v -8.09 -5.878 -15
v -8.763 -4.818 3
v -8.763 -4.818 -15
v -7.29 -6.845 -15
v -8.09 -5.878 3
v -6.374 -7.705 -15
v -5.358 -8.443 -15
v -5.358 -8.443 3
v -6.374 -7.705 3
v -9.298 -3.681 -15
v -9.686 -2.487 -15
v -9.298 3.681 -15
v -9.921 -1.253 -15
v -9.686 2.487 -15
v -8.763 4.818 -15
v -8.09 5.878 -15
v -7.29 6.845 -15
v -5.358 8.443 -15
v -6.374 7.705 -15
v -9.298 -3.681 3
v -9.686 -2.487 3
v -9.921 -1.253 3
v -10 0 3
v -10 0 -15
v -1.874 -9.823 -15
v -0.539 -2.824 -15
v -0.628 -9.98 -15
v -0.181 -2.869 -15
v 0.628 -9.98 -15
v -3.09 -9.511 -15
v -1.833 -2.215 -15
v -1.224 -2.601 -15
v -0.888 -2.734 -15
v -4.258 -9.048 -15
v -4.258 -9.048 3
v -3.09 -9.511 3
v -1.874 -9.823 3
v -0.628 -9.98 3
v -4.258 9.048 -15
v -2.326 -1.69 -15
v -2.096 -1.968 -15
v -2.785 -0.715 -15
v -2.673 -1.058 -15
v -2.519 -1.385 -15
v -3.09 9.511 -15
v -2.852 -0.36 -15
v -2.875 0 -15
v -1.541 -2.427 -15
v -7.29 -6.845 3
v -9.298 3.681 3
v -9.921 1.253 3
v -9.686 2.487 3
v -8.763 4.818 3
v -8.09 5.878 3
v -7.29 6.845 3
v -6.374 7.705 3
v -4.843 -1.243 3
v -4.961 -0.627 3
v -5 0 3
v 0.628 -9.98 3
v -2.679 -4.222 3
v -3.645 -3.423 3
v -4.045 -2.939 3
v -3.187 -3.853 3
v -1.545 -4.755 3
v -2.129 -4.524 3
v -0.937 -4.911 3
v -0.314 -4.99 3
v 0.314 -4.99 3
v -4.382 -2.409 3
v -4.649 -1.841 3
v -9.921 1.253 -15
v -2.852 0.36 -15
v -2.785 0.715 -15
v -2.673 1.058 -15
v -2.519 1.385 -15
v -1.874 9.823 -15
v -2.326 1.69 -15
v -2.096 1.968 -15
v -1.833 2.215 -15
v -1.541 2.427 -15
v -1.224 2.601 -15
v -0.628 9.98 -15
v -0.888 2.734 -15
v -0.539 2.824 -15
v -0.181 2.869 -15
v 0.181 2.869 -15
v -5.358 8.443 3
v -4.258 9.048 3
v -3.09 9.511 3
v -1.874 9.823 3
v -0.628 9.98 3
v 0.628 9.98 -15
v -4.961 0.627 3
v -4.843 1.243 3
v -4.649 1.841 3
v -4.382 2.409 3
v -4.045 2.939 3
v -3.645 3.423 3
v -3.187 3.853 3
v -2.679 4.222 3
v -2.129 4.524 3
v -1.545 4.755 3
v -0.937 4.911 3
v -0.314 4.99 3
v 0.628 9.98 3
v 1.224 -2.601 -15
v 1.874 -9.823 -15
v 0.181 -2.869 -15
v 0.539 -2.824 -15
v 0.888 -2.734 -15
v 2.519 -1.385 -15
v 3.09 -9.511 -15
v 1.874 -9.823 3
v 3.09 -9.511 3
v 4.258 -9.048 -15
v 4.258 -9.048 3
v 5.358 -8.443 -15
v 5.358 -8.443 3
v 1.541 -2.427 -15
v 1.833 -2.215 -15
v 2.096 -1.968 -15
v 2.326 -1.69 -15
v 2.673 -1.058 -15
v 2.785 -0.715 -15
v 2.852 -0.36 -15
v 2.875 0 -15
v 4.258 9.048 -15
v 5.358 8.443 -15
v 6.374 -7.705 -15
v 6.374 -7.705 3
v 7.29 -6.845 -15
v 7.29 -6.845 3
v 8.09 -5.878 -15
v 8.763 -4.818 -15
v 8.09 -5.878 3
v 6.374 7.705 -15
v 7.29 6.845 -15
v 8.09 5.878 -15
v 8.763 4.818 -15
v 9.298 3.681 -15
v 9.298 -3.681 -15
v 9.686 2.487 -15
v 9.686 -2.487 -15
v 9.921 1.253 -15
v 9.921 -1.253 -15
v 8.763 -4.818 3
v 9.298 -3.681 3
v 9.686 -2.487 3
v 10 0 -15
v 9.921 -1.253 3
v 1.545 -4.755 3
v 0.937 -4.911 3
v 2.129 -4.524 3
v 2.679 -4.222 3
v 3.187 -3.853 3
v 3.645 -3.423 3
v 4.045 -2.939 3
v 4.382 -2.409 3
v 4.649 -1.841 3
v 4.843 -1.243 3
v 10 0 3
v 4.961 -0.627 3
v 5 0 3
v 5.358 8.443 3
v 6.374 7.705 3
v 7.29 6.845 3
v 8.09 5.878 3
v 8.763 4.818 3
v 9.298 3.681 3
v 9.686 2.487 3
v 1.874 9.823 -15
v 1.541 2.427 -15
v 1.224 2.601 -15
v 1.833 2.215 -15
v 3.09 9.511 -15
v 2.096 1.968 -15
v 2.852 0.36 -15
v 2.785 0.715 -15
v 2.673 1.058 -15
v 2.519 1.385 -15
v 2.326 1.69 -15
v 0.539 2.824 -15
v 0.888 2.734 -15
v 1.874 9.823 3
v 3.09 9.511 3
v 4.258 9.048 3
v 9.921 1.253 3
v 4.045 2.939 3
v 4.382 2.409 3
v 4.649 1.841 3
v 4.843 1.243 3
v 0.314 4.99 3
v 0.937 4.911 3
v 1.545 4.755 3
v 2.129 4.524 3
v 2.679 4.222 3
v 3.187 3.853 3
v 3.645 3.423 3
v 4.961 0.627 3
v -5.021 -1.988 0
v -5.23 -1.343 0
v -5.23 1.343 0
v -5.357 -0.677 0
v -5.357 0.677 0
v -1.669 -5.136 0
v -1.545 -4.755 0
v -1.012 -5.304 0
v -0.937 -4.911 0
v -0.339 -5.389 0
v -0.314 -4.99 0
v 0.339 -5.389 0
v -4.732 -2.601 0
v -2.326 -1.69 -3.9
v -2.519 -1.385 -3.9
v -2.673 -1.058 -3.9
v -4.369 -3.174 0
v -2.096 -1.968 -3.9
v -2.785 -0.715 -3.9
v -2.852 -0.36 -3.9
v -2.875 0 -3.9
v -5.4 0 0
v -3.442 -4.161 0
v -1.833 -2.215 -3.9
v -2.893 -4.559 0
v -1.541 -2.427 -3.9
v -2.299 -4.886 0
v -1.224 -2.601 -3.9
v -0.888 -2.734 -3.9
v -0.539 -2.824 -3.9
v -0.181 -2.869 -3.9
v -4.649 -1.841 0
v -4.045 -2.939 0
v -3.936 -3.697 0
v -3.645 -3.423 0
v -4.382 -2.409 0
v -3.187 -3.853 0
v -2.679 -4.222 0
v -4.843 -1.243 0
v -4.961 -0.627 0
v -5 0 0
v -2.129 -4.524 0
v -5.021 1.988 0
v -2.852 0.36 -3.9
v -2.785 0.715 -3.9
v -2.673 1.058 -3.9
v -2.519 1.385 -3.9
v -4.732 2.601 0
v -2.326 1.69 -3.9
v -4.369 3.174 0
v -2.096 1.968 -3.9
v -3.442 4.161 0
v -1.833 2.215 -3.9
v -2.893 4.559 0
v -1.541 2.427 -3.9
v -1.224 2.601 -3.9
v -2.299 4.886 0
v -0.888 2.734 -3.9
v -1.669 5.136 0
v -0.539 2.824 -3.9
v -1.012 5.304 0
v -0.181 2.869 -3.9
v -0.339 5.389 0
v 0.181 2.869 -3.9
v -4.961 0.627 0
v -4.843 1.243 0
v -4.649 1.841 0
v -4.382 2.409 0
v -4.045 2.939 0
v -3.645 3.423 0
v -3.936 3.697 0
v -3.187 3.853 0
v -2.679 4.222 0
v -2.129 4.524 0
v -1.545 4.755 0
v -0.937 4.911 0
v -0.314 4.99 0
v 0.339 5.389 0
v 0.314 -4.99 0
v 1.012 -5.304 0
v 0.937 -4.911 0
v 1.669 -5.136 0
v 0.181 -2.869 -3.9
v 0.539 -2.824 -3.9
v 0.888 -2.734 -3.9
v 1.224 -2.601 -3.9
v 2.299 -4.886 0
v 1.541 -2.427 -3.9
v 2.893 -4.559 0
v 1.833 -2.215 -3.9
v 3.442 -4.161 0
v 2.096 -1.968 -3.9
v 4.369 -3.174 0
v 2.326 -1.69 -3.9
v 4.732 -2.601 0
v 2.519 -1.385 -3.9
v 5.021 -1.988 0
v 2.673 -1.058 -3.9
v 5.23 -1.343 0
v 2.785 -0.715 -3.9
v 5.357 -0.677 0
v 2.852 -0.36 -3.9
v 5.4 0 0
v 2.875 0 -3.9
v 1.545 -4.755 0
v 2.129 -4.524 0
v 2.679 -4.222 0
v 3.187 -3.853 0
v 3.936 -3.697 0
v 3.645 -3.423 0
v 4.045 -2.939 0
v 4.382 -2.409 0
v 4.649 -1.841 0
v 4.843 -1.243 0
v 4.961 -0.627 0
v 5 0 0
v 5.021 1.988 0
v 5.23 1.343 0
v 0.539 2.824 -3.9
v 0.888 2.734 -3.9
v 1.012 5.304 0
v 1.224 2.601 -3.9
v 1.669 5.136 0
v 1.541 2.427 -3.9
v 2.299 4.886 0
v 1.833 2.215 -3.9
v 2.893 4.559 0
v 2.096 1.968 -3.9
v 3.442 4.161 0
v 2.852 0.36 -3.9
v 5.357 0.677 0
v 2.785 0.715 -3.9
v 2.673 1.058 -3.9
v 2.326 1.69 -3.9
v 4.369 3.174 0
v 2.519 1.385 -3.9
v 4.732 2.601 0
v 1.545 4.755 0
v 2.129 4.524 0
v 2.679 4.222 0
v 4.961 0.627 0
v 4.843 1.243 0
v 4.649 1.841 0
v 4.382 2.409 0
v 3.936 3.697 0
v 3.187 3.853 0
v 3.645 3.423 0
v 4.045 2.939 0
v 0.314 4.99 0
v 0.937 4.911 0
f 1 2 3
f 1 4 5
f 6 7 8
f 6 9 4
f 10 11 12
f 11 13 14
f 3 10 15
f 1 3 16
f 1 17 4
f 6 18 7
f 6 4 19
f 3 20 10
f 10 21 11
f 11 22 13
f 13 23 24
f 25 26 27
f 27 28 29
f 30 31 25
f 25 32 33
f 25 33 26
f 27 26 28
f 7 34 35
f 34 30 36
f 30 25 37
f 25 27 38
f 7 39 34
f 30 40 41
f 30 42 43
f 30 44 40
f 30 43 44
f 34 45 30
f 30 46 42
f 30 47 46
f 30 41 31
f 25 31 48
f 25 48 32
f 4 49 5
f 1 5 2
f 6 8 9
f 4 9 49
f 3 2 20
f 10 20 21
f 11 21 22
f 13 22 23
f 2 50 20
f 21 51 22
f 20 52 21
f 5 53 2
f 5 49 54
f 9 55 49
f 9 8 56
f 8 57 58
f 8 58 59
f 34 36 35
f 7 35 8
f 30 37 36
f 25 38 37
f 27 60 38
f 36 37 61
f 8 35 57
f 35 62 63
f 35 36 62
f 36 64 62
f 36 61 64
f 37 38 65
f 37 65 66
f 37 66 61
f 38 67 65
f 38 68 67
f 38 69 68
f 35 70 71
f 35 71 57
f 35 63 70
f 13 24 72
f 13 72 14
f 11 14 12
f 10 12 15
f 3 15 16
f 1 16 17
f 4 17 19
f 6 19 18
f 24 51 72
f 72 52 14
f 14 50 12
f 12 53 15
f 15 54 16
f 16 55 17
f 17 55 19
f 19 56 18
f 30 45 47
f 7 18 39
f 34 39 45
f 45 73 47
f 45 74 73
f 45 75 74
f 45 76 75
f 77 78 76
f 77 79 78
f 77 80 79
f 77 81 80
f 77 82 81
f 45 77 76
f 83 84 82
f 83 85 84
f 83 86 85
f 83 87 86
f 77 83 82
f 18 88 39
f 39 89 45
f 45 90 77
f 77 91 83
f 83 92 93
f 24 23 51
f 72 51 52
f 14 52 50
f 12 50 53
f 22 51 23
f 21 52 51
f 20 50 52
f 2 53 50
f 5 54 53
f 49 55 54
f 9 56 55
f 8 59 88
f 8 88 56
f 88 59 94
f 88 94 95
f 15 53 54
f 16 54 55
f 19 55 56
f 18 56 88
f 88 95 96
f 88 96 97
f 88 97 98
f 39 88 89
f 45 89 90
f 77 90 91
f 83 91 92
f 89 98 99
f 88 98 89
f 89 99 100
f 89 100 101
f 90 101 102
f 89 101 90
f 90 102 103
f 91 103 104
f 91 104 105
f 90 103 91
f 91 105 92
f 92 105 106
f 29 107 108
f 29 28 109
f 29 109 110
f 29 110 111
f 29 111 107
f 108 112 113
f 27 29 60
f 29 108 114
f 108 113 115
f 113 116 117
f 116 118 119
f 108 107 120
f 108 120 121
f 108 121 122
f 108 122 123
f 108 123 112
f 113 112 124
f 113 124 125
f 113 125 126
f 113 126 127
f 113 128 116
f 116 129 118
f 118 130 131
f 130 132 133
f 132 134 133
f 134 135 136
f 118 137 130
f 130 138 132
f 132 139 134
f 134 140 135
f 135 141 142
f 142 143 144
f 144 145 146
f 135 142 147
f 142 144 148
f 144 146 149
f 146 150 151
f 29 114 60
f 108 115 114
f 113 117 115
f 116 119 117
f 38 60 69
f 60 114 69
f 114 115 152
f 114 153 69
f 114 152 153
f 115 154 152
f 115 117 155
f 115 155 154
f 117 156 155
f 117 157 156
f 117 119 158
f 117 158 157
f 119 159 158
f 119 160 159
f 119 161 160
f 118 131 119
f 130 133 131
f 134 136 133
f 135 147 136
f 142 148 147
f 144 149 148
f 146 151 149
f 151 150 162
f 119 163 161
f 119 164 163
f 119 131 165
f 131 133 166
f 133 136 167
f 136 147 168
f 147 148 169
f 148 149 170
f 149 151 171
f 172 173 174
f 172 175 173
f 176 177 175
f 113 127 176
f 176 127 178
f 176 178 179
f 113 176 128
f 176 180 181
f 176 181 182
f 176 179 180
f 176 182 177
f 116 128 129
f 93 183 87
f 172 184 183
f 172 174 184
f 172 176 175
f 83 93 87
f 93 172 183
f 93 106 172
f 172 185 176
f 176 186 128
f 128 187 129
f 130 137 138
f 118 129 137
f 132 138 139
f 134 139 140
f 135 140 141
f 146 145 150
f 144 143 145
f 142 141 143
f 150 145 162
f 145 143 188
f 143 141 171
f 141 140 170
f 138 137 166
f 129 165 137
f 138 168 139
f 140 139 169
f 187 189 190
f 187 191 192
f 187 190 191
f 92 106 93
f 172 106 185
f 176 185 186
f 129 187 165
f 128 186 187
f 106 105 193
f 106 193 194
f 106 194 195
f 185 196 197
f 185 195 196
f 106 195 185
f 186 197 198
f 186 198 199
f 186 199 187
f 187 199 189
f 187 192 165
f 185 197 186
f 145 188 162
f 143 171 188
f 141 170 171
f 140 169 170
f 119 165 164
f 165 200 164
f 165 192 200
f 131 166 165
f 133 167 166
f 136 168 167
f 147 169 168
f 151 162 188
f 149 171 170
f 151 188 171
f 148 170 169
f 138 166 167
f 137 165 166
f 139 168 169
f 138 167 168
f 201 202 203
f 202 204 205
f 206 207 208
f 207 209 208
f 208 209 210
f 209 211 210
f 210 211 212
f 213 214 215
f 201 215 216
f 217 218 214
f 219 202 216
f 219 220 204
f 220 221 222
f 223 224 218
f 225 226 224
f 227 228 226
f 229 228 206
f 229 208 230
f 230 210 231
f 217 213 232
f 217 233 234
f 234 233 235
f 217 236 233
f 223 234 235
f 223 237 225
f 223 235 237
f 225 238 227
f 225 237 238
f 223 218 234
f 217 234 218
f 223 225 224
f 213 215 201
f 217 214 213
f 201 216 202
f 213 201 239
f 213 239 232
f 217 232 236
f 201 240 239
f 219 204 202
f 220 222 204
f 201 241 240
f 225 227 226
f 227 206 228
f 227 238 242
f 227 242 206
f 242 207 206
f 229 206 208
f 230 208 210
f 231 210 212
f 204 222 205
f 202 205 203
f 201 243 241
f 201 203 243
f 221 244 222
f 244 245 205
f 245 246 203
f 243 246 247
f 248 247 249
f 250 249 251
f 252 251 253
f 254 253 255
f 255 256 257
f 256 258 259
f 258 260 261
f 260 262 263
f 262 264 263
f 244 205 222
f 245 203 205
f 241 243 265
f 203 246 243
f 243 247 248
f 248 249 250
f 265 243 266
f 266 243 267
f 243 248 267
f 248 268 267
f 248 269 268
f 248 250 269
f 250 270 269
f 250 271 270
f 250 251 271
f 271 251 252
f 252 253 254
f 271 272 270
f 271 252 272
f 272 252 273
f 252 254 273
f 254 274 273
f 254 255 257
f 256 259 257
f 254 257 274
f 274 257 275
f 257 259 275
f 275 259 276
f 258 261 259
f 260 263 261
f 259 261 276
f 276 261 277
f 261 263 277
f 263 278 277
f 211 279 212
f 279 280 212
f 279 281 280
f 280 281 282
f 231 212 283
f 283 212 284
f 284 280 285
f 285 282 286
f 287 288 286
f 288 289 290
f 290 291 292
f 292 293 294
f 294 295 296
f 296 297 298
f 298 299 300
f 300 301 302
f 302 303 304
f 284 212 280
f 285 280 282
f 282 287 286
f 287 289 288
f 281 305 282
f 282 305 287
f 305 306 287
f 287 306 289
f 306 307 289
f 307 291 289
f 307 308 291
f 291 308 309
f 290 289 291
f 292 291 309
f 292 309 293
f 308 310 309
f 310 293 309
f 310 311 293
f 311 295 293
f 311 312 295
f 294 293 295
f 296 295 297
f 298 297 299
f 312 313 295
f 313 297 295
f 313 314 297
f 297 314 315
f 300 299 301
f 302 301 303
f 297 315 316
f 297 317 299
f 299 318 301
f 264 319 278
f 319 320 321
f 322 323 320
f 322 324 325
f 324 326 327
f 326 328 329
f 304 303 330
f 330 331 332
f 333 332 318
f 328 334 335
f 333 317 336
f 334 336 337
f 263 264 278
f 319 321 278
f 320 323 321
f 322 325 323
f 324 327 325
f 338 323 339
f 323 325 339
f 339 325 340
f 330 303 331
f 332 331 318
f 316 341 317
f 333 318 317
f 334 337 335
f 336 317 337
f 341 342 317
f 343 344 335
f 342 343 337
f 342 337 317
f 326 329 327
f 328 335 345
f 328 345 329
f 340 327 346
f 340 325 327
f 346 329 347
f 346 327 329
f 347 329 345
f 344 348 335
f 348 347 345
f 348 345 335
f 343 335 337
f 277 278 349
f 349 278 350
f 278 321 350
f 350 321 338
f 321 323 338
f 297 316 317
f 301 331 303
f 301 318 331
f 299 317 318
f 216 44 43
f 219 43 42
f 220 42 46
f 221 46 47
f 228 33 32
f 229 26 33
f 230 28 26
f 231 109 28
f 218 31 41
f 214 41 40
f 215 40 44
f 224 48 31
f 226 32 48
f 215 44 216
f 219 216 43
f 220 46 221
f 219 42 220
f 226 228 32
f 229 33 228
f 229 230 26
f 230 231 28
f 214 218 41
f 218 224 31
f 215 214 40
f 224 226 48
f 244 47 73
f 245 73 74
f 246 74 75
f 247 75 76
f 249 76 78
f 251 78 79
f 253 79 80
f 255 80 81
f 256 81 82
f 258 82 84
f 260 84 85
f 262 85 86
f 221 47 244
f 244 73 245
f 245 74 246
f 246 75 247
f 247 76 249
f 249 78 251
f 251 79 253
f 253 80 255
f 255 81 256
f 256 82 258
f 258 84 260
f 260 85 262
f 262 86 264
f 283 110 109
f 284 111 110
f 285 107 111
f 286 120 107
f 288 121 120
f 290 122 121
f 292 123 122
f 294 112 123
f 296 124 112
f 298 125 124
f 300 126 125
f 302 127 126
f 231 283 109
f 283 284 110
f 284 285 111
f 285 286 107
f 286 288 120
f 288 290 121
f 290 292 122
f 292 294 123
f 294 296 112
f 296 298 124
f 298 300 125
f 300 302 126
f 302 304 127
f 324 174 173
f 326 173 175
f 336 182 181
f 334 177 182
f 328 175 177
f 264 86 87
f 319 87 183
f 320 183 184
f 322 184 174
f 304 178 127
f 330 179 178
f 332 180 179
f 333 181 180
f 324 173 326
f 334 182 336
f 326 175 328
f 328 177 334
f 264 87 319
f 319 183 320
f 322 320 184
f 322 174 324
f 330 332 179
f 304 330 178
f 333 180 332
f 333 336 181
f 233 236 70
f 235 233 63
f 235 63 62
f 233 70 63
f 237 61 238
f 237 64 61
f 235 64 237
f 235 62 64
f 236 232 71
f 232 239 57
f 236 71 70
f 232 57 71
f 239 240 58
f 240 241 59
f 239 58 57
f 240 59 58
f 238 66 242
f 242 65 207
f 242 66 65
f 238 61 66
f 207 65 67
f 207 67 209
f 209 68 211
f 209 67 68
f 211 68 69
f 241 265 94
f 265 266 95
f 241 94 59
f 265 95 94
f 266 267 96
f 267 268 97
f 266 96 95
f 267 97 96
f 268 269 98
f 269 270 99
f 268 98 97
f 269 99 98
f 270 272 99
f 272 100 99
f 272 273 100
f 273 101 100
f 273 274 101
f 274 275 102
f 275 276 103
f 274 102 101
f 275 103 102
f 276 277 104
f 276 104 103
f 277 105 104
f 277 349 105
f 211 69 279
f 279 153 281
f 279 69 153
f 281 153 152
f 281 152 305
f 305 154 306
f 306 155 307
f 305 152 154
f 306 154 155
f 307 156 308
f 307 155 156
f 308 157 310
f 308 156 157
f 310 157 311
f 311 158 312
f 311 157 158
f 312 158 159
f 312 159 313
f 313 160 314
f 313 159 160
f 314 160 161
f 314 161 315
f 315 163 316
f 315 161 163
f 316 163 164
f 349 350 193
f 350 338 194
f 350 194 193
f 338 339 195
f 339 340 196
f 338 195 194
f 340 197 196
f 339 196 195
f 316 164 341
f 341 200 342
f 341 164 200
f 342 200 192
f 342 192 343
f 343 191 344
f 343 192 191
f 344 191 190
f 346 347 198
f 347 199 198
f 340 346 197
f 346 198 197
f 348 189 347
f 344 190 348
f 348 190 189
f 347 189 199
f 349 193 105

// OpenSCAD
$fn = 50;

difference() {
	union() {
		translate(v = [0, 0, -15.0]) {
			cylinder(h = 18, r = 10.0);
		}
		#translate(v = [0, 0, -18.0]) {
			cylinder(h = 18, r = 2.875);
		}
	}
	union() {
		translate(v = [0, 0, 0]) {
			rotate(a = [0, 0, 0]) {
				difference() {
					union() {
						translate(v = [0, 0, -18.0]) {
							cylinder(h = 18, r = 2.6);
						}
						translate(v = [0, 0, -3.9]) {
							cylinder(h = 3.9, r1 = 2.875, r2 = 5.4);
						}
						translate(v = [0, 0, -18.0]) {
							cylinder(h = 18, r = 2.875);
						}
						translate(v = [0, 0, -18.0]) {
							cylinder(h = 18, r = 2.6);
						}
					}
					union();
				}
			}
		}
		#cylinder(h = 3, r = 5.0);
	}
}
